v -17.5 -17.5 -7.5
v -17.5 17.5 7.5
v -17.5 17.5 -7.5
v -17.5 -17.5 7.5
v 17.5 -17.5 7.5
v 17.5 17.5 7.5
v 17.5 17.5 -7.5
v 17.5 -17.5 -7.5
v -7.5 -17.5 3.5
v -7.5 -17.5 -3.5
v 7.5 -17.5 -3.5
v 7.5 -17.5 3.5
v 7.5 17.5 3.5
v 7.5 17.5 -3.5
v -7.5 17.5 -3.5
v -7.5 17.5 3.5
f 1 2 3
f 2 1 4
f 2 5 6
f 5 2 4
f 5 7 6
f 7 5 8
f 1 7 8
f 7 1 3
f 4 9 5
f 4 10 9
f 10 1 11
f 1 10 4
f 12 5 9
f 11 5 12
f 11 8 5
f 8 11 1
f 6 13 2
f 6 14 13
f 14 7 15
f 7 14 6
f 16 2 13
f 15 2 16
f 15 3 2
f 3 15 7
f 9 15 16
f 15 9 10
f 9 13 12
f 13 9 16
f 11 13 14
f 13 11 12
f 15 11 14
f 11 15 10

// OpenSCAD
/* Vertebrae Holder Rail
*/

difference(){
    cube([35,35,15],true);  
    translate([0,0,0]){
        cube([15,35,7],true);
    }
}
